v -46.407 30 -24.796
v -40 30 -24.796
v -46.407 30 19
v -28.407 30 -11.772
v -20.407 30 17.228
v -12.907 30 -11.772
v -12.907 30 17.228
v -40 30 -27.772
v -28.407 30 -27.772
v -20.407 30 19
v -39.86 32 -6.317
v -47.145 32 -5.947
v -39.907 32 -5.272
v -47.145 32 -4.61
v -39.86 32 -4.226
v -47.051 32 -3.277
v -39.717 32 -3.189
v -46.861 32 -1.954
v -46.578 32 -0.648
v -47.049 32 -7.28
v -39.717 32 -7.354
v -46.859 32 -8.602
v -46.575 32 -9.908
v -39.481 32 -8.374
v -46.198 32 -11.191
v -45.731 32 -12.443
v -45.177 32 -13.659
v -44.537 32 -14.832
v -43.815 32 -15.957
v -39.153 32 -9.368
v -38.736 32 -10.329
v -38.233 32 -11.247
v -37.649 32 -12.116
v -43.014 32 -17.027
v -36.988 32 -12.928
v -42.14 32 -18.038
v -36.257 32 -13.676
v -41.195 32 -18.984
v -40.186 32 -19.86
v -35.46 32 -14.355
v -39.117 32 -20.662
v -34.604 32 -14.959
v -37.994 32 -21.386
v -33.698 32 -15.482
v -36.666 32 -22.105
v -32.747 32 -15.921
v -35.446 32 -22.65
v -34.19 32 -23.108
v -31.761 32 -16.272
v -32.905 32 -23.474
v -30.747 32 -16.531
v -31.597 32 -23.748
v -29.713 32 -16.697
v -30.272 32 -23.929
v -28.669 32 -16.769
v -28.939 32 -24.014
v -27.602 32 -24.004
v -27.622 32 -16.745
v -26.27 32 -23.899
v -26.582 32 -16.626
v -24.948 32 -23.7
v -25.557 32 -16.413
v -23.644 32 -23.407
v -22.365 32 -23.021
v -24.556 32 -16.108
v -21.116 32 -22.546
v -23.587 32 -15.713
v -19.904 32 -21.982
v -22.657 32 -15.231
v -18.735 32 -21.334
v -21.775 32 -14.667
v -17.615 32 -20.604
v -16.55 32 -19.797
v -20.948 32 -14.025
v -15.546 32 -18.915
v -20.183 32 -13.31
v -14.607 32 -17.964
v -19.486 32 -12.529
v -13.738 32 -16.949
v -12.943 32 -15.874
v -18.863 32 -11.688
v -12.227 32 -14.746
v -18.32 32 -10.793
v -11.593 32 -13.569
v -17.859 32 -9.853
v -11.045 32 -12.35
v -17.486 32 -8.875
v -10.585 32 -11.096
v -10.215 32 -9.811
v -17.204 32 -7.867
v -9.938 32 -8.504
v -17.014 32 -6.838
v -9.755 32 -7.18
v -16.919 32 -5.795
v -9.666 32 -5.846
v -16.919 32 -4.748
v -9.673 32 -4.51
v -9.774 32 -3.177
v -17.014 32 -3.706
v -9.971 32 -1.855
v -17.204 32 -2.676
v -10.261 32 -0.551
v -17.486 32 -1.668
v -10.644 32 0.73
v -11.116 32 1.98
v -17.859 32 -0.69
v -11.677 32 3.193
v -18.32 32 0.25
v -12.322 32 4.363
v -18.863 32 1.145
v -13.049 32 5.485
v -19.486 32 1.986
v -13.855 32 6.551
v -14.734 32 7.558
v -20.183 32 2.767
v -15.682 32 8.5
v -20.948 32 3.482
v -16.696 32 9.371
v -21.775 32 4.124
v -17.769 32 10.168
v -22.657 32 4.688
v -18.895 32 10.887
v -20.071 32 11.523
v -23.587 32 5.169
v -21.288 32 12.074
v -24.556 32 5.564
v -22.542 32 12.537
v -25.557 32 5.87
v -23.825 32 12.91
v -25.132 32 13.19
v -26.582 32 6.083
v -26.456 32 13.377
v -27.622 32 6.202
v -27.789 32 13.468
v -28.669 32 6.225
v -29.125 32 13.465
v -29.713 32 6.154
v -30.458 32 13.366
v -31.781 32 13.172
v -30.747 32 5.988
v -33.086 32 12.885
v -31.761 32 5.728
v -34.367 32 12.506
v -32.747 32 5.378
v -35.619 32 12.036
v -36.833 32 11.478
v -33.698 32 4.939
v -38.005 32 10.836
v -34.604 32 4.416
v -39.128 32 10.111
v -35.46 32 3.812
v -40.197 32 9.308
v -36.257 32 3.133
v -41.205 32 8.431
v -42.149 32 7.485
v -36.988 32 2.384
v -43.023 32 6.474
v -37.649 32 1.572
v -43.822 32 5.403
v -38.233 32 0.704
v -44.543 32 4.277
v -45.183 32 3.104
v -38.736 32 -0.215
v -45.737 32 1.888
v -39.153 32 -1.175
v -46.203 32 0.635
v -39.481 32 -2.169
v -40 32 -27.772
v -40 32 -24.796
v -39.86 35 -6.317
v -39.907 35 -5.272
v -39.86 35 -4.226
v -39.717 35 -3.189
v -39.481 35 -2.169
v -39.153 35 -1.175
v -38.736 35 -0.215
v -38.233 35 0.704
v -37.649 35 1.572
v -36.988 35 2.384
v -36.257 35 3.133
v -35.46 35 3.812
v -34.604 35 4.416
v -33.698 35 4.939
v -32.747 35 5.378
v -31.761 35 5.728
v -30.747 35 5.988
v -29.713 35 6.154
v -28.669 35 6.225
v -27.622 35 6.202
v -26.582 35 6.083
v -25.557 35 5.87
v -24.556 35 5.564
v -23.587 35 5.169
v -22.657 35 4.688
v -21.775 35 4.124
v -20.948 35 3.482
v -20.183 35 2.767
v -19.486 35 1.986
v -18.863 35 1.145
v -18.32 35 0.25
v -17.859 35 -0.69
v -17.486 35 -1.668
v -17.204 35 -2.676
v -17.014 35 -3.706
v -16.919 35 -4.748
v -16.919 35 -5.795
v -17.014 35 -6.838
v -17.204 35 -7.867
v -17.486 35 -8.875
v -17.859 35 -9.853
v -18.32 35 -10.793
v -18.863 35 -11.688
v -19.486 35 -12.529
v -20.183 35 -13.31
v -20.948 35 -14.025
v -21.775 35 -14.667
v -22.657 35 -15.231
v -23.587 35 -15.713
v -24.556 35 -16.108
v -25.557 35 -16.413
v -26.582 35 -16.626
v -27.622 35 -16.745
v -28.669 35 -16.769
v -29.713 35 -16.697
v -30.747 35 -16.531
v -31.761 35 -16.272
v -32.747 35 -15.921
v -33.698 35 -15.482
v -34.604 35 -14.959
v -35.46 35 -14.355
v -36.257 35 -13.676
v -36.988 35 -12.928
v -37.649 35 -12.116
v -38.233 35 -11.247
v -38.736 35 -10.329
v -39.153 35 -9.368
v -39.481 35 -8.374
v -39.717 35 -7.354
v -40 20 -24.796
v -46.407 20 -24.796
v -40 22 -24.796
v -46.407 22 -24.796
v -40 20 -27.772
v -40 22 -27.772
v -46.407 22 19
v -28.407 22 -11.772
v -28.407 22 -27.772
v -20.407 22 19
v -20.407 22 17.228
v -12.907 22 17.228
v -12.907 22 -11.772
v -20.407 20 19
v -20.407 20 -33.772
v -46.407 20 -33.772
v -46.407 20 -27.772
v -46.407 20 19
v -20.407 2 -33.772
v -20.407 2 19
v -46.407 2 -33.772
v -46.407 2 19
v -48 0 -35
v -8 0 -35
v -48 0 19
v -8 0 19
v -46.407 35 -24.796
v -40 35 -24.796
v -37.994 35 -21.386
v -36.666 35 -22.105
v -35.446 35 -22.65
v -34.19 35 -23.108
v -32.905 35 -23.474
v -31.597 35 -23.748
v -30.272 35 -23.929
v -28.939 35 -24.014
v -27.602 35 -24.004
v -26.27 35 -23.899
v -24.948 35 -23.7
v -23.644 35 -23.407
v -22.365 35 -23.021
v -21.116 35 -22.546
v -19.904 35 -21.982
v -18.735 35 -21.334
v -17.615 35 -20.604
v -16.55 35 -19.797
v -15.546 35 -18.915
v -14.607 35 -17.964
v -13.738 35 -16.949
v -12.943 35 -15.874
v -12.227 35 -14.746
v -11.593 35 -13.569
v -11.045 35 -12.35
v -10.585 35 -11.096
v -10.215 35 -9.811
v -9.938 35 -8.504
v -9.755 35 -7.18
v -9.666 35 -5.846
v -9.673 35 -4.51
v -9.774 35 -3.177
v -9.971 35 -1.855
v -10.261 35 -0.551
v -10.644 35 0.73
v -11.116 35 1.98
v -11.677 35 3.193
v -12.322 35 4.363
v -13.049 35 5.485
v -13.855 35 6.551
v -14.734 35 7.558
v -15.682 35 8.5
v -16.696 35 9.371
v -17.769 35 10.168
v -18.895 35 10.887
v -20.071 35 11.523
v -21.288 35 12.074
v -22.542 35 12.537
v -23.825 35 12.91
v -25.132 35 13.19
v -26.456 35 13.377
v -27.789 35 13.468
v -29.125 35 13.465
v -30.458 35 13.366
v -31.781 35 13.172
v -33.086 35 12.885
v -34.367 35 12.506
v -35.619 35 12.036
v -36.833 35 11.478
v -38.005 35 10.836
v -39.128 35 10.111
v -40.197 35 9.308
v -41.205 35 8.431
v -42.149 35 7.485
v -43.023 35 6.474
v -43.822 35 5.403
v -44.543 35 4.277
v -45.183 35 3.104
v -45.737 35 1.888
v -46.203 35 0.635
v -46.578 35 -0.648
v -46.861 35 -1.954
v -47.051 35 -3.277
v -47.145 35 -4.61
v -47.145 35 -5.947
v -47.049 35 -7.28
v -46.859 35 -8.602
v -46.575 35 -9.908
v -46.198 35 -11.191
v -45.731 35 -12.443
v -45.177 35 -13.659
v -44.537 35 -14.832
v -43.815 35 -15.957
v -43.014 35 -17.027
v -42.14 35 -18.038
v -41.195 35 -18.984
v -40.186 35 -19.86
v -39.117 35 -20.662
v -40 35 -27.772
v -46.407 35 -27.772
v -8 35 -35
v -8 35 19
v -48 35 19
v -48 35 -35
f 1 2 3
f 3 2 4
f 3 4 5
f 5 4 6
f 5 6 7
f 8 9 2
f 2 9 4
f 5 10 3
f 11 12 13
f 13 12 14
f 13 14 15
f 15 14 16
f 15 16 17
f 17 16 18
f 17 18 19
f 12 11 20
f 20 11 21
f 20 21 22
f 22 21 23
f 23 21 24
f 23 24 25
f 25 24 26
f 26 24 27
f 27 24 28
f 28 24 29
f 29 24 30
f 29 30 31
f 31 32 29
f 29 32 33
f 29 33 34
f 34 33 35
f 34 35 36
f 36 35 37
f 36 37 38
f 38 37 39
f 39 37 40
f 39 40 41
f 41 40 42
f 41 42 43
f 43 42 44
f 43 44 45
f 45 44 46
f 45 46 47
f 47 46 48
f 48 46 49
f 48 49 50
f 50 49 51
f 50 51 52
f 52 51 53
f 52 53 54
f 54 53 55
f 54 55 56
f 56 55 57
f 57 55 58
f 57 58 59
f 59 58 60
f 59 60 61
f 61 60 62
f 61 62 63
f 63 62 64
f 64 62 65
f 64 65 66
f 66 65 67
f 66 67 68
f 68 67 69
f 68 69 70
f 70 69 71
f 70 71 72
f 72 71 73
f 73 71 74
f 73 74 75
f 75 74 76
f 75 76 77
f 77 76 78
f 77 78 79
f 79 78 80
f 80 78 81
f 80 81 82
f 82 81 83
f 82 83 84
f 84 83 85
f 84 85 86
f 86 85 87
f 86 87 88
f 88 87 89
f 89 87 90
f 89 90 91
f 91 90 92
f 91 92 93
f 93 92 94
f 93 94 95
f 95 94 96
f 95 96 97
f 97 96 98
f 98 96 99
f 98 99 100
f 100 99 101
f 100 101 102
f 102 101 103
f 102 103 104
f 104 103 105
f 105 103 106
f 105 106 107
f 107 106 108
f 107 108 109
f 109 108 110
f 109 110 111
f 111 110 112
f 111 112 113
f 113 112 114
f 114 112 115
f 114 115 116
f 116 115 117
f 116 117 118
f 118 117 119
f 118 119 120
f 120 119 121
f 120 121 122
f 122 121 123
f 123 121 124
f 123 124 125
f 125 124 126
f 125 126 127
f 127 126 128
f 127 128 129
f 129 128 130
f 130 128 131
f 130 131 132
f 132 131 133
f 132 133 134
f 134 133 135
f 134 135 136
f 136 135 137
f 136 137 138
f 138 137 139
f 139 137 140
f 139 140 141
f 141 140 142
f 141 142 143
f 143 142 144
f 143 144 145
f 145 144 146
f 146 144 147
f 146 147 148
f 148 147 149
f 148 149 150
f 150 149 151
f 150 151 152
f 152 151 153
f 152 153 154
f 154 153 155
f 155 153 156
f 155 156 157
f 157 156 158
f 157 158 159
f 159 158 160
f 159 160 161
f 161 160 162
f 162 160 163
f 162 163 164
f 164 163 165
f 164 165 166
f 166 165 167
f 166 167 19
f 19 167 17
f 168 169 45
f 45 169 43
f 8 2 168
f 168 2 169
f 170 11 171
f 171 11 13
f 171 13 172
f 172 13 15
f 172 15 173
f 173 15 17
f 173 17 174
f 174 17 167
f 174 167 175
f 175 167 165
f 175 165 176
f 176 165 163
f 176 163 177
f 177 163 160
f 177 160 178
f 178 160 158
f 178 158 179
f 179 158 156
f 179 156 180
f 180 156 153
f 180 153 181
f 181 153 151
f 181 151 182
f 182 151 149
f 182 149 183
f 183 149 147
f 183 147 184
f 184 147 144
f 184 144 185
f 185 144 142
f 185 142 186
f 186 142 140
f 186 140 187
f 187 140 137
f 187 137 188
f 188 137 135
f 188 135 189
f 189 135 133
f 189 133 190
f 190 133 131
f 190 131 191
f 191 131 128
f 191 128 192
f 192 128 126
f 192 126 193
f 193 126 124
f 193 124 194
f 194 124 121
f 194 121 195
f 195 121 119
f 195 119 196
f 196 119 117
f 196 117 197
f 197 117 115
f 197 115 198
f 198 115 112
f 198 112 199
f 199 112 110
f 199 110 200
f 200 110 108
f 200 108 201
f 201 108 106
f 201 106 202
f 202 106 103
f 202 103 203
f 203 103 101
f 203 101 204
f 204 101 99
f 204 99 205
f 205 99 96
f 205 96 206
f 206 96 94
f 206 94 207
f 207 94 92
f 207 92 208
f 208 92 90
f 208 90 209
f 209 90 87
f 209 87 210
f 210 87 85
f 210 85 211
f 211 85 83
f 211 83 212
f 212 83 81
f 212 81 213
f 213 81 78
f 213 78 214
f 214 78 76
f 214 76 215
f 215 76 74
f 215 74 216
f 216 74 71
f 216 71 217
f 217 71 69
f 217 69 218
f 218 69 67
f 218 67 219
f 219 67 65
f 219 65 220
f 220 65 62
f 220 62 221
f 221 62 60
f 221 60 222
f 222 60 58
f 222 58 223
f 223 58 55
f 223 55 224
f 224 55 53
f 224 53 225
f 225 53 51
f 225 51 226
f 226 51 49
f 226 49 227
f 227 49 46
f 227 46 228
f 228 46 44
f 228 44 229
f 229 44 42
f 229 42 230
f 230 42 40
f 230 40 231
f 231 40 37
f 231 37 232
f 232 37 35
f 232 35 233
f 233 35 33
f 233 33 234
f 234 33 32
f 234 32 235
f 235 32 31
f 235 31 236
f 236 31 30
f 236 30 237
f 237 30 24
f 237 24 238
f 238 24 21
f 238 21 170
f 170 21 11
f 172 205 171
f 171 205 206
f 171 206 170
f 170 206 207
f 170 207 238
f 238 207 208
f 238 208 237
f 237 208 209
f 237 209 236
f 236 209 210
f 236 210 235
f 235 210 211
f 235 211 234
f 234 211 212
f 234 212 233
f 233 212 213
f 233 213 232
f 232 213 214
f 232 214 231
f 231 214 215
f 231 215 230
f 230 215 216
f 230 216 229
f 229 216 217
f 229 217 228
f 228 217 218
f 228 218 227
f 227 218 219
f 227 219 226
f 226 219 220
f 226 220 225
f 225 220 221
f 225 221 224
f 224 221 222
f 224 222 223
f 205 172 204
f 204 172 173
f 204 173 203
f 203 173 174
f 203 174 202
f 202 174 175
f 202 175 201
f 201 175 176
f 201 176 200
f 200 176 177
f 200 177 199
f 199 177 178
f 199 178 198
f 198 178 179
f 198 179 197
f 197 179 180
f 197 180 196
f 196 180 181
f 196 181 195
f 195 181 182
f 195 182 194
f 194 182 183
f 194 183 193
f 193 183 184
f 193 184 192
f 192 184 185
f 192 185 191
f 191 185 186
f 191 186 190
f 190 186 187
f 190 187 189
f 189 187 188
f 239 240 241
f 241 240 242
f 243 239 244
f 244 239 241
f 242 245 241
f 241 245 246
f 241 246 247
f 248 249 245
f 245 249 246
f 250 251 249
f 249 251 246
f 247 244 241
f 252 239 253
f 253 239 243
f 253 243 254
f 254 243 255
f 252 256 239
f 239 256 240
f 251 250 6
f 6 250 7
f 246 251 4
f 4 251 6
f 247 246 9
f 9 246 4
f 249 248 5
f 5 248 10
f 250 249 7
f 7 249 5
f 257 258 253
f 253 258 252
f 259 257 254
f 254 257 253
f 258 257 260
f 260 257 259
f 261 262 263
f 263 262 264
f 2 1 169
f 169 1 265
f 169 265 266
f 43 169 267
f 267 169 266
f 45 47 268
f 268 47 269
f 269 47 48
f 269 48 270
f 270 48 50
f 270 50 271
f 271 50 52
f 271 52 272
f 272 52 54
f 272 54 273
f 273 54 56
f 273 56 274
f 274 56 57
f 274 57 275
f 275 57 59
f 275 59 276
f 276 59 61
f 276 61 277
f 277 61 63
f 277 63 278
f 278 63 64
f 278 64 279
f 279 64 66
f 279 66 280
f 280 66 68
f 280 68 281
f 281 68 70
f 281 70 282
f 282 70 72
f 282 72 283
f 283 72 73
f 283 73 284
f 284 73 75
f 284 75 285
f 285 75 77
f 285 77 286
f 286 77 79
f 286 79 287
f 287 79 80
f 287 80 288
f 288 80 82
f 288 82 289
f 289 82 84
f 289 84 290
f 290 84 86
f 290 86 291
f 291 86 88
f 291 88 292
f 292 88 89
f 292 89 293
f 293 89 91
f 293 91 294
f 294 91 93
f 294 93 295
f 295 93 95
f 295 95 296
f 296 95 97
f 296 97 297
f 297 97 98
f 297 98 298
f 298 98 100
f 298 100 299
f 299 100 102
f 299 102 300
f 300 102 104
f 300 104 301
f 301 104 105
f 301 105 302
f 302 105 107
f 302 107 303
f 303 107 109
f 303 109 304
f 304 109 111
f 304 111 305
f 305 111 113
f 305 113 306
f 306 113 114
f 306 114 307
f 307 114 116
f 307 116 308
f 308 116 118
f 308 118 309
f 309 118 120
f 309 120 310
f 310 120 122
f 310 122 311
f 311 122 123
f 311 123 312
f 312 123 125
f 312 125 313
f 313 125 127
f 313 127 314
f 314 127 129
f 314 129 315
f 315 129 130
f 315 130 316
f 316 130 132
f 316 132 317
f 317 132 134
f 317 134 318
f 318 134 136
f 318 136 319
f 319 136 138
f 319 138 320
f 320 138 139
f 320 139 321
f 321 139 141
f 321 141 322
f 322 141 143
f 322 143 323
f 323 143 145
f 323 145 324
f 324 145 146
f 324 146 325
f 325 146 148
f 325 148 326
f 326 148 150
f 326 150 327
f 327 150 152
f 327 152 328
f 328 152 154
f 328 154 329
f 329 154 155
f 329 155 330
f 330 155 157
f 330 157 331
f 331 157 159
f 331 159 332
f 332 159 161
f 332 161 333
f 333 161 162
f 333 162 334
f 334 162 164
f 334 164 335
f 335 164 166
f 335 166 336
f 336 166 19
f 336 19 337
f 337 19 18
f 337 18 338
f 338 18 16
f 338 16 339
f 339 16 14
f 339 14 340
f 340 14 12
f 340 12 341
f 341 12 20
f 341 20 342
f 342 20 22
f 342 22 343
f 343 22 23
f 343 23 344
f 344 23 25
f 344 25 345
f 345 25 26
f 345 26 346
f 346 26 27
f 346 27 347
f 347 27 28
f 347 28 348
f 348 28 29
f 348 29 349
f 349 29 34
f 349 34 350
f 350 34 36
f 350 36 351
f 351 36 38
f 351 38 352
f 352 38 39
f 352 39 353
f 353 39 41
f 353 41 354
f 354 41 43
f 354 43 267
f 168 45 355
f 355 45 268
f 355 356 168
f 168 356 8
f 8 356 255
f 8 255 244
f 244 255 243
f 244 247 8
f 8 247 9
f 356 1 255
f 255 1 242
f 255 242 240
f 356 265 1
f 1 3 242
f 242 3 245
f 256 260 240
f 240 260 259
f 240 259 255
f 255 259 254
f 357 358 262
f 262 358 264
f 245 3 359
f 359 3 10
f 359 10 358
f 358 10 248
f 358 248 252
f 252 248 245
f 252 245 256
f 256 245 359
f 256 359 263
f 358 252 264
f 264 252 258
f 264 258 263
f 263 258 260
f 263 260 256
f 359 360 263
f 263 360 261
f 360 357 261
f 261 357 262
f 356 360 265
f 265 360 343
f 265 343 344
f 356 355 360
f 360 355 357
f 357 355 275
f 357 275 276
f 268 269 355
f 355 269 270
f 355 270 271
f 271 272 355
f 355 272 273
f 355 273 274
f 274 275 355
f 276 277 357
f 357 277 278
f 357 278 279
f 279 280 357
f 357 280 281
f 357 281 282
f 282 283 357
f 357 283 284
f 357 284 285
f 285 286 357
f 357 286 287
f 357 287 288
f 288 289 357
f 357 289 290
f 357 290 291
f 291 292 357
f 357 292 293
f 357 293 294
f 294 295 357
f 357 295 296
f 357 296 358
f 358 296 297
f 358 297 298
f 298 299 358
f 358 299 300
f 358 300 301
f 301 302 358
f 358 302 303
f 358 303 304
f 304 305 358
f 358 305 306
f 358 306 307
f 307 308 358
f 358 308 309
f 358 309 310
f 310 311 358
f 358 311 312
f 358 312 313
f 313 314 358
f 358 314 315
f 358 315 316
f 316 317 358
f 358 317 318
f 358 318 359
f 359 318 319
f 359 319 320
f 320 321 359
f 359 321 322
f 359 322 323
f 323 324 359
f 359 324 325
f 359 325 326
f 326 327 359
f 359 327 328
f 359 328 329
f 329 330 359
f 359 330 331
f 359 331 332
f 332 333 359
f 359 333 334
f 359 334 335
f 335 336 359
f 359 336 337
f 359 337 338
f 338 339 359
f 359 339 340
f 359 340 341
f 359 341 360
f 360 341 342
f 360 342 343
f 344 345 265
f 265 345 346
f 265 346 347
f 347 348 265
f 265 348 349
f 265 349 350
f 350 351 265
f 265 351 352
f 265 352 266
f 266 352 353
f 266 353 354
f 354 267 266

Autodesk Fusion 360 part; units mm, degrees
sketch "Sketch1" plane through (0, 0, 0) normal (0, 1, 0) x (1, 0, 0)
  line L0 (-46.4072, 33.7716) -> (-20.4072, 33.7716)
  line L1 (-20.4072, 33.7716) -> (-20.4072, -17.2284)
  line L2 (-20.4072, -17.2284) -> (-46.4072, -17.2284)
  line L3 (-46.4072, -17.2284) -> (-46.4072, 33.7716)
  line L4 (-46.4072, -17.2284) -> (-28.4072, -17.2284)
  line L5 (-28.4072, -17.2284) -> (-28.4072, 27.7716)
  line L6 (-28.4072, 27.7716) -> (-46.4072, 27.7716)
  line L7 (-46.4072, 27.7716) -> (-46.4072, -17.2284)
  line L8 (-28.4072, -17.2284) -> (-12.9072, -17.2284)
  line L9 (-12.9072, -17.2284) -> (-12.9072, 11.7716)
  line L10 (-12.9072, 11.7716) -> (-28.4072, 11.7716)
  line L11 (-28.4072, 11.7716) -> (-28.4072, -17.2284)
  circle A0 centre (-28.4072, 5.2716) radius 18.75
  circle A1 centre (-28.4072, 5.2716) radius 11.5
  line L12 (-48, 35) -> (-48, -19)
  line L13 (-48, -19) -> (-8, -19)
  line L14 (-8, -19) -> (-8, 35)
  line L15 (-8, 35) -> (-48, 35)
  line L16 (-12.9072, -17.2284) -> (-8, -17.2284)
  line L17 (-46.4072, -17.2284) -> (-48, -17.2284)
  line L18 (-46.4072, -17.2284) -> (-46.4072, -19)
  line L19 (-20.4072, -17.2284) -> (-20.4072, -19)
  line L20 (-46.4072, 24.796) -> (-40, 24.796)
  line L21 (-40, 24.796) -> (-40, 27.7716)
  line L22 (-40, 24.796) -> (-37.9936, 21.3857)
  line L23 (-40, 27.7716) -> (-36.6659, 22.1048)
  dimension "d1" = 26
  dimension "d2" = 51
  dimension "d3" = 45
  dimension "d4" = 18
  dimension "d5" = 15.5
  dimension "d6" = 29
  dimension "d7" = 37.5
  dimension "d8" = 23
extrude "Extrude1" add sketch "Sketch1" along normal blind 2 makes body 1
extrude "Extrude2" add sketch "Sketch1" along normal blind 18 separate body contours L0 L1 L3 L7 L9 A0 L12 L14 L15 L16 L17 | L1 L9 L10 A0 A1 | L1 L10 A1 | L3 L7 A0 | L1 L10 A1 | L1 L9 L10 A0 A1 | L1 L8 L9 A0 | L8 L13 L14 L16 L19 | L12 L13 L17 L18 makes body 2
extrude "Extrude3" add sketch "Sketch1" along normal blind 2 separate body contours L0 L1 L3 L7 L9 A0 L12 L14 L15 L16 L17 | L0 L1 L3 L5 L6 A0 | L1 L9 L10 A0 A1 | L1 L5 A0 A1 | L3 L7 A0 L20 L22 | A0 L21 L22 L23 | L5 L6 A0 L23 | L1 L10 A1 | L1 L5 L10 A1 | L3 L5 L7 L11 A0 A1 | L3 L7 A0 | L1 L10 A1 | L1 L5 L10 L11 A1 | L1 L9 L10 A0 A1 | L5 L11 A1 | L1 L8 L9 A0 | L2 L3 L4 L5 L7 L11 A0 | L1 L5 L11 A0 A1 | L8 L13 L14 L16 L19 | L1 L2 L5 L8 L11 A0 | L12 L13 L17 L18 | L2 L4 L8 L13 L18 L19 makes body 3
extrude "Extrude4" add sketch "Sketch1" along normal blind 8 separate body contours L0 L1 L3 L7 L9 A0 L12 L14 L15 L16 L17 | L0 L1 L3 L5 L6 A0 | L1 L9 L10 A0 A1 | L1 L5 A0 A1 | L1 L10 A1 | L1 L5 L10 A1 | L3 L7 A0 | L8 L13 L14 L16 L19 | L12 L13 L17 L18 picked at (-14.7995, 12.9513) picked at (-19.8853, 12.3809) makes body 4
extrude "Extrude5" add sketch "Sketch1" along normal blind 2 separate body contours L0 L1 L3 L7 L9 A0 L12 L14 L15 L16 L17 | L0 L1 L3 L5 L6 A0 | L1 L9 L10 A0 A1 | L1 L5 A0 A1 | L3 L7 A0 L20 L22 | A0 L21 L22 L23 | L5 L6 A0 L23 | L1 L10 A1 | L1 L5 L10 A1 | L3 L5 L7 L11 A0 A1 | L3 L7 A0 | L1 L10 A1 | L1 L5 L10 L11 A1 | L1 L9 L10 A0 A1 | L5 L11 A1 | L1 L8 L9 A0 | L2 L3 L4 L5 L7 L11 A0 | L1 L5 L11 A0 A1 | L8 L13 L14 L16 L19 | L1 L2 L5 L8 L11 A0 | L12 L13 L17 L18 | L2 L4 L8 L13 L18 L19 makes body 5
extrude "Extrude6" add sketch "Sketch1" along normal blind 3 separate body contours L0 L1 L3 L7 L9 A0 L12 L14 L15 L16 L17 | L0 L1 L3 L5 L6 A0 | L3 L7 A0 L20 L22 | L5 L6 A0 L23 | L1 L10 A1 | L1 L5 L10 A1 | L1 L10 A1 | L1 L5 L10 L11 A1 | L5 L11 A1 | L1 L8 L9 A0 | L2 L3 L4 L5 L7 L11 A0 | L8 L13 L14 L16 L19 | L1 L2 L5 L8 L11 A0 | L12 L13 L17 L18 | L2 L4 L8 L13 L18 L19 makes body 6 at (-32, 3, -32.5905) makes body 7 at (-31.134, 0, -9.3605)
move_body "Move1" bodies 2 to x (1, 0, 0) y (0, 1, 0) z (0, 0, 1) at (0, 2, 0)
move_body "Move2" bodies 3 to x (1, 0, 0) y (0, 1, 0) z (0, 0, 1) at (0, 20, 0)
move_body "Move3" bodies 4 to x (1, 0, 0) y (0, 1, 0) z (0, 0, 1) at (0, 22, 0)
move_body "Move4" bodies 5 to x (1, 0, 0) y (0, 1, 0) z (0, 0, 1) at (0, 30, 0)
move_body "Move5" bodies 6 to x (1, 0, 0) y (0, 1, 0) z (0, 0, 1) at (0, 32, 0)
move_body "Move6" bodies 7 to x (1, 0, 0) y (0, 1, 0) z (0, 0, 1) at (0, 32, 0)
combine "Combine1" operation add target body 1 tool bodies 7 6 2 4 3 5
